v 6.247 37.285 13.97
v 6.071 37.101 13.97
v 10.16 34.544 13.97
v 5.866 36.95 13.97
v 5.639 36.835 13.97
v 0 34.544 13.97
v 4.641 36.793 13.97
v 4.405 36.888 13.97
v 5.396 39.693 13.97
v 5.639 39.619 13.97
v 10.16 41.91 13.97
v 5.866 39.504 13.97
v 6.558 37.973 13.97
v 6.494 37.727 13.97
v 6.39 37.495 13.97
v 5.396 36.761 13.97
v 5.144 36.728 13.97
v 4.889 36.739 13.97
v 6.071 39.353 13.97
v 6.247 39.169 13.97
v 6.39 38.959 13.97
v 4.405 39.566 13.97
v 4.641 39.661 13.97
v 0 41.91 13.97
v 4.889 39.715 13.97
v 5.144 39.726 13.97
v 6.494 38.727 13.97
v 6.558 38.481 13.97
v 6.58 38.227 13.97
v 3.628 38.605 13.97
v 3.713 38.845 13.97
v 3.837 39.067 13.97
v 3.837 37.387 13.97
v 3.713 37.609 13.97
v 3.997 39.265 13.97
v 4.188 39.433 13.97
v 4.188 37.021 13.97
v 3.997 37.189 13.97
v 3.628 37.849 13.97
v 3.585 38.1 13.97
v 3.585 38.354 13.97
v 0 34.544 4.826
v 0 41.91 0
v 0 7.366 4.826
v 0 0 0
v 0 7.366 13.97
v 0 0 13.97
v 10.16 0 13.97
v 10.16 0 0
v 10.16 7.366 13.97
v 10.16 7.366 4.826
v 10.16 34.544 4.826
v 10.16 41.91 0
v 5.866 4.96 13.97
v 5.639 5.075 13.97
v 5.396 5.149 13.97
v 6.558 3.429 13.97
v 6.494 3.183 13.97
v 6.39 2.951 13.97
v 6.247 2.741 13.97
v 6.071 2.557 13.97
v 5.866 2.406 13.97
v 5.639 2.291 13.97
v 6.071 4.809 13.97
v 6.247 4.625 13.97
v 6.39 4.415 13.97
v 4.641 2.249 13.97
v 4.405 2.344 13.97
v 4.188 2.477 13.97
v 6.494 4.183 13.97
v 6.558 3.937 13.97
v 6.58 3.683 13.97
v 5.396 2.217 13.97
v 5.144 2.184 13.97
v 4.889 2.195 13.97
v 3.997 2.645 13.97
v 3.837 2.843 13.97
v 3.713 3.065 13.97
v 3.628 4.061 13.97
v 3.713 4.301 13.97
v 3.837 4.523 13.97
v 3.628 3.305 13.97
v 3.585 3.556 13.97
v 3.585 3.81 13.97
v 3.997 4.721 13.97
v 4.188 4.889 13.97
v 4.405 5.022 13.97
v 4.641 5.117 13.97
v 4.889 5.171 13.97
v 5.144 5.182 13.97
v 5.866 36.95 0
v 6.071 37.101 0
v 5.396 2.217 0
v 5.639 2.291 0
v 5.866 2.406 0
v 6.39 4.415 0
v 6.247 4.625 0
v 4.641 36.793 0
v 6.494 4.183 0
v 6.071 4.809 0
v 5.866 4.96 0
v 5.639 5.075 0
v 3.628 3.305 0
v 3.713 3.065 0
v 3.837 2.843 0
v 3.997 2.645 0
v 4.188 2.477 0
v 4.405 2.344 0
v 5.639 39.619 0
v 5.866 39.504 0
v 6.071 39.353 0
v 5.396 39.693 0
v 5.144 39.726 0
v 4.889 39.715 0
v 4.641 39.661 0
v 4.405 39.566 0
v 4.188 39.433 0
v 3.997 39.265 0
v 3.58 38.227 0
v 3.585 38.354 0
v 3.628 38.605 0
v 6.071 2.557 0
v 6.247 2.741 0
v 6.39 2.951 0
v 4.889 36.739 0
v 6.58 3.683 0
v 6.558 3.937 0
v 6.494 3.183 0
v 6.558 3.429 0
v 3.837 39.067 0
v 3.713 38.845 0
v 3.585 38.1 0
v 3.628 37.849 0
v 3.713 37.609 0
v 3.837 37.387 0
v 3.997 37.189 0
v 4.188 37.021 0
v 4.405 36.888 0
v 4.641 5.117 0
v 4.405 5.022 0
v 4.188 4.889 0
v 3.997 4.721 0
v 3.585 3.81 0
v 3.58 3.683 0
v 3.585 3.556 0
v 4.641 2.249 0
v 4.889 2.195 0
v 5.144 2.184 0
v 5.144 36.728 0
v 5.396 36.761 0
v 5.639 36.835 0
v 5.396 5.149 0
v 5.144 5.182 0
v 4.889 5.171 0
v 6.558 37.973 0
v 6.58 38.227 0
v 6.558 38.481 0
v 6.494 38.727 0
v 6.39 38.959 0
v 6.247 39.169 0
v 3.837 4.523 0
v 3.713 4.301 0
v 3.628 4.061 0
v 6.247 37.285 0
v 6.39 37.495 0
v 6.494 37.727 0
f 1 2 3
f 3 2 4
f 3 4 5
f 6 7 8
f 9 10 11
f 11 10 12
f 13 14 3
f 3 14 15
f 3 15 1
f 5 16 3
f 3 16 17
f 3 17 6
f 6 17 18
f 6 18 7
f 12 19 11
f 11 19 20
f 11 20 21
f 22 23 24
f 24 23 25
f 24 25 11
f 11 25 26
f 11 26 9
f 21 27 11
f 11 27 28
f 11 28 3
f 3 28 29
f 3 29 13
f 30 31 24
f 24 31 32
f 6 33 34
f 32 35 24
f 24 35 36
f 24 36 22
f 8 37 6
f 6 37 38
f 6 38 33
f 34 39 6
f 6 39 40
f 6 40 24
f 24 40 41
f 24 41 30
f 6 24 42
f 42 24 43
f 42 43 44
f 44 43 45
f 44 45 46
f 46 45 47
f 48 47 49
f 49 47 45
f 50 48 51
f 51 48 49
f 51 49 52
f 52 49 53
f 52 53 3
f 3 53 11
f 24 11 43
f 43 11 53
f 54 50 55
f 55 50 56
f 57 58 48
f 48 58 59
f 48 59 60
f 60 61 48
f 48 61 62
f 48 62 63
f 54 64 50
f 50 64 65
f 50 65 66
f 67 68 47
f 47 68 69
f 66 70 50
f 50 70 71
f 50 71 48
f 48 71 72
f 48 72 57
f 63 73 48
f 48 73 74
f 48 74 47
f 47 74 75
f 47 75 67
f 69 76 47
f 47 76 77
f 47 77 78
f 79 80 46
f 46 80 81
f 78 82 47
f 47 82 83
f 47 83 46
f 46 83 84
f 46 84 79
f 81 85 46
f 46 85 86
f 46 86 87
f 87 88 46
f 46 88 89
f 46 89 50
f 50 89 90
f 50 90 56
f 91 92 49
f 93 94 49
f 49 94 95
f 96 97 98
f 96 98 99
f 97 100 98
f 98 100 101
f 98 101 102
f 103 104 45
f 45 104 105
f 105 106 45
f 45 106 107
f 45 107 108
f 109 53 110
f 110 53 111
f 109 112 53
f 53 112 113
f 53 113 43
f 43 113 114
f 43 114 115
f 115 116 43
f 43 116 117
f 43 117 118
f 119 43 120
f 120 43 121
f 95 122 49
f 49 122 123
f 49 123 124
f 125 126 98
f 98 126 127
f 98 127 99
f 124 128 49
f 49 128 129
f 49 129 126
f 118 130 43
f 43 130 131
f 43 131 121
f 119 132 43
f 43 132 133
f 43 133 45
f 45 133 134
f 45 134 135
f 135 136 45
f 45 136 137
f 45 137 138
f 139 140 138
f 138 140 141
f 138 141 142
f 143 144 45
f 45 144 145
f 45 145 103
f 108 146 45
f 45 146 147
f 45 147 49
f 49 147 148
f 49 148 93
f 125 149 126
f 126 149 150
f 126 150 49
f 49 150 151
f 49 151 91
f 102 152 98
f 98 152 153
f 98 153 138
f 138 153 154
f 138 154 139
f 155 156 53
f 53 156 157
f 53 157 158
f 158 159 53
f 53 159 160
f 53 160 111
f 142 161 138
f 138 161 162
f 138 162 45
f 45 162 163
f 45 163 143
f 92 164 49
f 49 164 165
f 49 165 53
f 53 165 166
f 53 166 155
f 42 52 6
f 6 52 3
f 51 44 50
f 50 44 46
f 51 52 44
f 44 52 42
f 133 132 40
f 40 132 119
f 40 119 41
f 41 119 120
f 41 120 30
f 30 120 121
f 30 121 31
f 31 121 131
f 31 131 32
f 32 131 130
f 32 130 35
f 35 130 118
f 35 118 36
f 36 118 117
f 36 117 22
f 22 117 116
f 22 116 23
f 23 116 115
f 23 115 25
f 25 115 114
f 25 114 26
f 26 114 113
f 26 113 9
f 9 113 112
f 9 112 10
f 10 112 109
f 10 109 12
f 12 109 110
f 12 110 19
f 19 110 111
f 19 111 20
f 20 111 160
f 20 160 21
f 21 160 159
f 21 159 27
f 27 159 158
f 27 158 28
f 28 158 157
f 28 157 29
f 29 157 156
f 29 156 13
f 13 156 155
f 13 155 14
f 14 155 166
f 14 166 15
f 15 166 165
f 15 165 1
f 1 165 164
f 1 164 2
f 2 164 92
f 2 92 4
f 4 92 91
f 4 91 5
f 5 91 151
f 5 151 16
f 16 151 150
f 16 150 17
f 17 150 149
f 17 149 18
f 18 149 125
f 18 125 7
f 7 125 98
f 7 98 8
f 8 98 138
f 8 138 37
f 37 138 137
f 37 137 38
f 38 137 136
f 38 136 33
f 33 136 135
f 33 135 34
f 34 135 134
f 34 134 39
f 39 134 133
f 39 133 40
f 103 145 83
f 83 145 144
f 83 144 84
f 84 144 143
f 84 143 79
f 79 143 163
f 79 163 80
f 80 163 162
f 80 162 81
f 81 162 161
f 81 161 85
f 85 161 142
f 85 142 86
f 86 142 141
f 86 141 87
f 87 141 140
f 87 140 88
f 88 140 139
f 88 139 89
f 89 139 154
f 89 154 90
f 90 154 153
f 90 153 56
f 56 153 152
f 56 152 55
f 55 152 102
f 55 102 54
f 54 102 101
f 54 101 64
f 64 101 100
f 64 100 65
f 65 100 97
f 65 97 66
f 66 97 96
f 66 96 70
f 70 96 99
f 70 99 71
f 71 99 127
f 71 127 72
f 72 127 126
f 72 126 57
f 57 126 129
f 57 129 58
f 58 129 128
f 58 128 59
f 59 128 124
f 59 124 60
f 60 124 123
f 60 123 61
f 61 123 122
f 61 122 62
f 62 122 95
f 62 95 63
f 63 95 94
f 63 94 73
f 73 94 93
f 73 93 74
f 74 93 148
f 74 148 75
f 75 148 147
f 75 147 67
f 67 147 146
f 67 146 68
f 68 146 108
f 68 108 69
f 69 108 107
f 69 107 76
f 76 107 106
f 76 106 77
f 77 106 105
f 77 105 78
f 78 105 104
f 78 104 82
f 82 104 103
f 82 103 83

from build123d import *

# Parameters (mm, degrees)
SKETCH1_W             = 10.16
SKETCH1_H             = 41.91
BOSS_EXTRUDE1_DEPTH   = 13.97
SKETCH2_W             = 10.16
SKETCH2_H             = 27.178
CUT_EXTRUDE1_DEPTH    = 9.144
F_3_0MM_DOWEL_HOLE1_D = 3


with BuildPart() as part:
    # Sketch1 → Boss-Extrude1 (new body)
    with BuildSketch(Plane.XY):
        with Locations((5.08, 20.955)):
            Rectangle(SKETCH1_W, SKETCH1_H)
    extrude(amount=BOSS_EXTRUDE1_DEPTH)

    # Sketch2 → Cut-Extrude1 (cut)
    with BuildSketch(Plane.XY.offset(13.97)):
        with Locations((5.08, 20.955)):
            Rectangle(SKETCH2_W, SKETCH2_H)
    extrude(amount=-CUT_EXTRUDE1_DEPTH, mode=Mode.SUBTRACT)

    # Ø3.0mm Dowel Hole1 (through all)
    with Locations(Plane.XY.offset(13.97)):
        with Locations((5.08, 3.683), (5.08, 38.227)):
            Hole(F_3_0MM_DOWEL_HOLE1_D / 2)


solid = part.part
